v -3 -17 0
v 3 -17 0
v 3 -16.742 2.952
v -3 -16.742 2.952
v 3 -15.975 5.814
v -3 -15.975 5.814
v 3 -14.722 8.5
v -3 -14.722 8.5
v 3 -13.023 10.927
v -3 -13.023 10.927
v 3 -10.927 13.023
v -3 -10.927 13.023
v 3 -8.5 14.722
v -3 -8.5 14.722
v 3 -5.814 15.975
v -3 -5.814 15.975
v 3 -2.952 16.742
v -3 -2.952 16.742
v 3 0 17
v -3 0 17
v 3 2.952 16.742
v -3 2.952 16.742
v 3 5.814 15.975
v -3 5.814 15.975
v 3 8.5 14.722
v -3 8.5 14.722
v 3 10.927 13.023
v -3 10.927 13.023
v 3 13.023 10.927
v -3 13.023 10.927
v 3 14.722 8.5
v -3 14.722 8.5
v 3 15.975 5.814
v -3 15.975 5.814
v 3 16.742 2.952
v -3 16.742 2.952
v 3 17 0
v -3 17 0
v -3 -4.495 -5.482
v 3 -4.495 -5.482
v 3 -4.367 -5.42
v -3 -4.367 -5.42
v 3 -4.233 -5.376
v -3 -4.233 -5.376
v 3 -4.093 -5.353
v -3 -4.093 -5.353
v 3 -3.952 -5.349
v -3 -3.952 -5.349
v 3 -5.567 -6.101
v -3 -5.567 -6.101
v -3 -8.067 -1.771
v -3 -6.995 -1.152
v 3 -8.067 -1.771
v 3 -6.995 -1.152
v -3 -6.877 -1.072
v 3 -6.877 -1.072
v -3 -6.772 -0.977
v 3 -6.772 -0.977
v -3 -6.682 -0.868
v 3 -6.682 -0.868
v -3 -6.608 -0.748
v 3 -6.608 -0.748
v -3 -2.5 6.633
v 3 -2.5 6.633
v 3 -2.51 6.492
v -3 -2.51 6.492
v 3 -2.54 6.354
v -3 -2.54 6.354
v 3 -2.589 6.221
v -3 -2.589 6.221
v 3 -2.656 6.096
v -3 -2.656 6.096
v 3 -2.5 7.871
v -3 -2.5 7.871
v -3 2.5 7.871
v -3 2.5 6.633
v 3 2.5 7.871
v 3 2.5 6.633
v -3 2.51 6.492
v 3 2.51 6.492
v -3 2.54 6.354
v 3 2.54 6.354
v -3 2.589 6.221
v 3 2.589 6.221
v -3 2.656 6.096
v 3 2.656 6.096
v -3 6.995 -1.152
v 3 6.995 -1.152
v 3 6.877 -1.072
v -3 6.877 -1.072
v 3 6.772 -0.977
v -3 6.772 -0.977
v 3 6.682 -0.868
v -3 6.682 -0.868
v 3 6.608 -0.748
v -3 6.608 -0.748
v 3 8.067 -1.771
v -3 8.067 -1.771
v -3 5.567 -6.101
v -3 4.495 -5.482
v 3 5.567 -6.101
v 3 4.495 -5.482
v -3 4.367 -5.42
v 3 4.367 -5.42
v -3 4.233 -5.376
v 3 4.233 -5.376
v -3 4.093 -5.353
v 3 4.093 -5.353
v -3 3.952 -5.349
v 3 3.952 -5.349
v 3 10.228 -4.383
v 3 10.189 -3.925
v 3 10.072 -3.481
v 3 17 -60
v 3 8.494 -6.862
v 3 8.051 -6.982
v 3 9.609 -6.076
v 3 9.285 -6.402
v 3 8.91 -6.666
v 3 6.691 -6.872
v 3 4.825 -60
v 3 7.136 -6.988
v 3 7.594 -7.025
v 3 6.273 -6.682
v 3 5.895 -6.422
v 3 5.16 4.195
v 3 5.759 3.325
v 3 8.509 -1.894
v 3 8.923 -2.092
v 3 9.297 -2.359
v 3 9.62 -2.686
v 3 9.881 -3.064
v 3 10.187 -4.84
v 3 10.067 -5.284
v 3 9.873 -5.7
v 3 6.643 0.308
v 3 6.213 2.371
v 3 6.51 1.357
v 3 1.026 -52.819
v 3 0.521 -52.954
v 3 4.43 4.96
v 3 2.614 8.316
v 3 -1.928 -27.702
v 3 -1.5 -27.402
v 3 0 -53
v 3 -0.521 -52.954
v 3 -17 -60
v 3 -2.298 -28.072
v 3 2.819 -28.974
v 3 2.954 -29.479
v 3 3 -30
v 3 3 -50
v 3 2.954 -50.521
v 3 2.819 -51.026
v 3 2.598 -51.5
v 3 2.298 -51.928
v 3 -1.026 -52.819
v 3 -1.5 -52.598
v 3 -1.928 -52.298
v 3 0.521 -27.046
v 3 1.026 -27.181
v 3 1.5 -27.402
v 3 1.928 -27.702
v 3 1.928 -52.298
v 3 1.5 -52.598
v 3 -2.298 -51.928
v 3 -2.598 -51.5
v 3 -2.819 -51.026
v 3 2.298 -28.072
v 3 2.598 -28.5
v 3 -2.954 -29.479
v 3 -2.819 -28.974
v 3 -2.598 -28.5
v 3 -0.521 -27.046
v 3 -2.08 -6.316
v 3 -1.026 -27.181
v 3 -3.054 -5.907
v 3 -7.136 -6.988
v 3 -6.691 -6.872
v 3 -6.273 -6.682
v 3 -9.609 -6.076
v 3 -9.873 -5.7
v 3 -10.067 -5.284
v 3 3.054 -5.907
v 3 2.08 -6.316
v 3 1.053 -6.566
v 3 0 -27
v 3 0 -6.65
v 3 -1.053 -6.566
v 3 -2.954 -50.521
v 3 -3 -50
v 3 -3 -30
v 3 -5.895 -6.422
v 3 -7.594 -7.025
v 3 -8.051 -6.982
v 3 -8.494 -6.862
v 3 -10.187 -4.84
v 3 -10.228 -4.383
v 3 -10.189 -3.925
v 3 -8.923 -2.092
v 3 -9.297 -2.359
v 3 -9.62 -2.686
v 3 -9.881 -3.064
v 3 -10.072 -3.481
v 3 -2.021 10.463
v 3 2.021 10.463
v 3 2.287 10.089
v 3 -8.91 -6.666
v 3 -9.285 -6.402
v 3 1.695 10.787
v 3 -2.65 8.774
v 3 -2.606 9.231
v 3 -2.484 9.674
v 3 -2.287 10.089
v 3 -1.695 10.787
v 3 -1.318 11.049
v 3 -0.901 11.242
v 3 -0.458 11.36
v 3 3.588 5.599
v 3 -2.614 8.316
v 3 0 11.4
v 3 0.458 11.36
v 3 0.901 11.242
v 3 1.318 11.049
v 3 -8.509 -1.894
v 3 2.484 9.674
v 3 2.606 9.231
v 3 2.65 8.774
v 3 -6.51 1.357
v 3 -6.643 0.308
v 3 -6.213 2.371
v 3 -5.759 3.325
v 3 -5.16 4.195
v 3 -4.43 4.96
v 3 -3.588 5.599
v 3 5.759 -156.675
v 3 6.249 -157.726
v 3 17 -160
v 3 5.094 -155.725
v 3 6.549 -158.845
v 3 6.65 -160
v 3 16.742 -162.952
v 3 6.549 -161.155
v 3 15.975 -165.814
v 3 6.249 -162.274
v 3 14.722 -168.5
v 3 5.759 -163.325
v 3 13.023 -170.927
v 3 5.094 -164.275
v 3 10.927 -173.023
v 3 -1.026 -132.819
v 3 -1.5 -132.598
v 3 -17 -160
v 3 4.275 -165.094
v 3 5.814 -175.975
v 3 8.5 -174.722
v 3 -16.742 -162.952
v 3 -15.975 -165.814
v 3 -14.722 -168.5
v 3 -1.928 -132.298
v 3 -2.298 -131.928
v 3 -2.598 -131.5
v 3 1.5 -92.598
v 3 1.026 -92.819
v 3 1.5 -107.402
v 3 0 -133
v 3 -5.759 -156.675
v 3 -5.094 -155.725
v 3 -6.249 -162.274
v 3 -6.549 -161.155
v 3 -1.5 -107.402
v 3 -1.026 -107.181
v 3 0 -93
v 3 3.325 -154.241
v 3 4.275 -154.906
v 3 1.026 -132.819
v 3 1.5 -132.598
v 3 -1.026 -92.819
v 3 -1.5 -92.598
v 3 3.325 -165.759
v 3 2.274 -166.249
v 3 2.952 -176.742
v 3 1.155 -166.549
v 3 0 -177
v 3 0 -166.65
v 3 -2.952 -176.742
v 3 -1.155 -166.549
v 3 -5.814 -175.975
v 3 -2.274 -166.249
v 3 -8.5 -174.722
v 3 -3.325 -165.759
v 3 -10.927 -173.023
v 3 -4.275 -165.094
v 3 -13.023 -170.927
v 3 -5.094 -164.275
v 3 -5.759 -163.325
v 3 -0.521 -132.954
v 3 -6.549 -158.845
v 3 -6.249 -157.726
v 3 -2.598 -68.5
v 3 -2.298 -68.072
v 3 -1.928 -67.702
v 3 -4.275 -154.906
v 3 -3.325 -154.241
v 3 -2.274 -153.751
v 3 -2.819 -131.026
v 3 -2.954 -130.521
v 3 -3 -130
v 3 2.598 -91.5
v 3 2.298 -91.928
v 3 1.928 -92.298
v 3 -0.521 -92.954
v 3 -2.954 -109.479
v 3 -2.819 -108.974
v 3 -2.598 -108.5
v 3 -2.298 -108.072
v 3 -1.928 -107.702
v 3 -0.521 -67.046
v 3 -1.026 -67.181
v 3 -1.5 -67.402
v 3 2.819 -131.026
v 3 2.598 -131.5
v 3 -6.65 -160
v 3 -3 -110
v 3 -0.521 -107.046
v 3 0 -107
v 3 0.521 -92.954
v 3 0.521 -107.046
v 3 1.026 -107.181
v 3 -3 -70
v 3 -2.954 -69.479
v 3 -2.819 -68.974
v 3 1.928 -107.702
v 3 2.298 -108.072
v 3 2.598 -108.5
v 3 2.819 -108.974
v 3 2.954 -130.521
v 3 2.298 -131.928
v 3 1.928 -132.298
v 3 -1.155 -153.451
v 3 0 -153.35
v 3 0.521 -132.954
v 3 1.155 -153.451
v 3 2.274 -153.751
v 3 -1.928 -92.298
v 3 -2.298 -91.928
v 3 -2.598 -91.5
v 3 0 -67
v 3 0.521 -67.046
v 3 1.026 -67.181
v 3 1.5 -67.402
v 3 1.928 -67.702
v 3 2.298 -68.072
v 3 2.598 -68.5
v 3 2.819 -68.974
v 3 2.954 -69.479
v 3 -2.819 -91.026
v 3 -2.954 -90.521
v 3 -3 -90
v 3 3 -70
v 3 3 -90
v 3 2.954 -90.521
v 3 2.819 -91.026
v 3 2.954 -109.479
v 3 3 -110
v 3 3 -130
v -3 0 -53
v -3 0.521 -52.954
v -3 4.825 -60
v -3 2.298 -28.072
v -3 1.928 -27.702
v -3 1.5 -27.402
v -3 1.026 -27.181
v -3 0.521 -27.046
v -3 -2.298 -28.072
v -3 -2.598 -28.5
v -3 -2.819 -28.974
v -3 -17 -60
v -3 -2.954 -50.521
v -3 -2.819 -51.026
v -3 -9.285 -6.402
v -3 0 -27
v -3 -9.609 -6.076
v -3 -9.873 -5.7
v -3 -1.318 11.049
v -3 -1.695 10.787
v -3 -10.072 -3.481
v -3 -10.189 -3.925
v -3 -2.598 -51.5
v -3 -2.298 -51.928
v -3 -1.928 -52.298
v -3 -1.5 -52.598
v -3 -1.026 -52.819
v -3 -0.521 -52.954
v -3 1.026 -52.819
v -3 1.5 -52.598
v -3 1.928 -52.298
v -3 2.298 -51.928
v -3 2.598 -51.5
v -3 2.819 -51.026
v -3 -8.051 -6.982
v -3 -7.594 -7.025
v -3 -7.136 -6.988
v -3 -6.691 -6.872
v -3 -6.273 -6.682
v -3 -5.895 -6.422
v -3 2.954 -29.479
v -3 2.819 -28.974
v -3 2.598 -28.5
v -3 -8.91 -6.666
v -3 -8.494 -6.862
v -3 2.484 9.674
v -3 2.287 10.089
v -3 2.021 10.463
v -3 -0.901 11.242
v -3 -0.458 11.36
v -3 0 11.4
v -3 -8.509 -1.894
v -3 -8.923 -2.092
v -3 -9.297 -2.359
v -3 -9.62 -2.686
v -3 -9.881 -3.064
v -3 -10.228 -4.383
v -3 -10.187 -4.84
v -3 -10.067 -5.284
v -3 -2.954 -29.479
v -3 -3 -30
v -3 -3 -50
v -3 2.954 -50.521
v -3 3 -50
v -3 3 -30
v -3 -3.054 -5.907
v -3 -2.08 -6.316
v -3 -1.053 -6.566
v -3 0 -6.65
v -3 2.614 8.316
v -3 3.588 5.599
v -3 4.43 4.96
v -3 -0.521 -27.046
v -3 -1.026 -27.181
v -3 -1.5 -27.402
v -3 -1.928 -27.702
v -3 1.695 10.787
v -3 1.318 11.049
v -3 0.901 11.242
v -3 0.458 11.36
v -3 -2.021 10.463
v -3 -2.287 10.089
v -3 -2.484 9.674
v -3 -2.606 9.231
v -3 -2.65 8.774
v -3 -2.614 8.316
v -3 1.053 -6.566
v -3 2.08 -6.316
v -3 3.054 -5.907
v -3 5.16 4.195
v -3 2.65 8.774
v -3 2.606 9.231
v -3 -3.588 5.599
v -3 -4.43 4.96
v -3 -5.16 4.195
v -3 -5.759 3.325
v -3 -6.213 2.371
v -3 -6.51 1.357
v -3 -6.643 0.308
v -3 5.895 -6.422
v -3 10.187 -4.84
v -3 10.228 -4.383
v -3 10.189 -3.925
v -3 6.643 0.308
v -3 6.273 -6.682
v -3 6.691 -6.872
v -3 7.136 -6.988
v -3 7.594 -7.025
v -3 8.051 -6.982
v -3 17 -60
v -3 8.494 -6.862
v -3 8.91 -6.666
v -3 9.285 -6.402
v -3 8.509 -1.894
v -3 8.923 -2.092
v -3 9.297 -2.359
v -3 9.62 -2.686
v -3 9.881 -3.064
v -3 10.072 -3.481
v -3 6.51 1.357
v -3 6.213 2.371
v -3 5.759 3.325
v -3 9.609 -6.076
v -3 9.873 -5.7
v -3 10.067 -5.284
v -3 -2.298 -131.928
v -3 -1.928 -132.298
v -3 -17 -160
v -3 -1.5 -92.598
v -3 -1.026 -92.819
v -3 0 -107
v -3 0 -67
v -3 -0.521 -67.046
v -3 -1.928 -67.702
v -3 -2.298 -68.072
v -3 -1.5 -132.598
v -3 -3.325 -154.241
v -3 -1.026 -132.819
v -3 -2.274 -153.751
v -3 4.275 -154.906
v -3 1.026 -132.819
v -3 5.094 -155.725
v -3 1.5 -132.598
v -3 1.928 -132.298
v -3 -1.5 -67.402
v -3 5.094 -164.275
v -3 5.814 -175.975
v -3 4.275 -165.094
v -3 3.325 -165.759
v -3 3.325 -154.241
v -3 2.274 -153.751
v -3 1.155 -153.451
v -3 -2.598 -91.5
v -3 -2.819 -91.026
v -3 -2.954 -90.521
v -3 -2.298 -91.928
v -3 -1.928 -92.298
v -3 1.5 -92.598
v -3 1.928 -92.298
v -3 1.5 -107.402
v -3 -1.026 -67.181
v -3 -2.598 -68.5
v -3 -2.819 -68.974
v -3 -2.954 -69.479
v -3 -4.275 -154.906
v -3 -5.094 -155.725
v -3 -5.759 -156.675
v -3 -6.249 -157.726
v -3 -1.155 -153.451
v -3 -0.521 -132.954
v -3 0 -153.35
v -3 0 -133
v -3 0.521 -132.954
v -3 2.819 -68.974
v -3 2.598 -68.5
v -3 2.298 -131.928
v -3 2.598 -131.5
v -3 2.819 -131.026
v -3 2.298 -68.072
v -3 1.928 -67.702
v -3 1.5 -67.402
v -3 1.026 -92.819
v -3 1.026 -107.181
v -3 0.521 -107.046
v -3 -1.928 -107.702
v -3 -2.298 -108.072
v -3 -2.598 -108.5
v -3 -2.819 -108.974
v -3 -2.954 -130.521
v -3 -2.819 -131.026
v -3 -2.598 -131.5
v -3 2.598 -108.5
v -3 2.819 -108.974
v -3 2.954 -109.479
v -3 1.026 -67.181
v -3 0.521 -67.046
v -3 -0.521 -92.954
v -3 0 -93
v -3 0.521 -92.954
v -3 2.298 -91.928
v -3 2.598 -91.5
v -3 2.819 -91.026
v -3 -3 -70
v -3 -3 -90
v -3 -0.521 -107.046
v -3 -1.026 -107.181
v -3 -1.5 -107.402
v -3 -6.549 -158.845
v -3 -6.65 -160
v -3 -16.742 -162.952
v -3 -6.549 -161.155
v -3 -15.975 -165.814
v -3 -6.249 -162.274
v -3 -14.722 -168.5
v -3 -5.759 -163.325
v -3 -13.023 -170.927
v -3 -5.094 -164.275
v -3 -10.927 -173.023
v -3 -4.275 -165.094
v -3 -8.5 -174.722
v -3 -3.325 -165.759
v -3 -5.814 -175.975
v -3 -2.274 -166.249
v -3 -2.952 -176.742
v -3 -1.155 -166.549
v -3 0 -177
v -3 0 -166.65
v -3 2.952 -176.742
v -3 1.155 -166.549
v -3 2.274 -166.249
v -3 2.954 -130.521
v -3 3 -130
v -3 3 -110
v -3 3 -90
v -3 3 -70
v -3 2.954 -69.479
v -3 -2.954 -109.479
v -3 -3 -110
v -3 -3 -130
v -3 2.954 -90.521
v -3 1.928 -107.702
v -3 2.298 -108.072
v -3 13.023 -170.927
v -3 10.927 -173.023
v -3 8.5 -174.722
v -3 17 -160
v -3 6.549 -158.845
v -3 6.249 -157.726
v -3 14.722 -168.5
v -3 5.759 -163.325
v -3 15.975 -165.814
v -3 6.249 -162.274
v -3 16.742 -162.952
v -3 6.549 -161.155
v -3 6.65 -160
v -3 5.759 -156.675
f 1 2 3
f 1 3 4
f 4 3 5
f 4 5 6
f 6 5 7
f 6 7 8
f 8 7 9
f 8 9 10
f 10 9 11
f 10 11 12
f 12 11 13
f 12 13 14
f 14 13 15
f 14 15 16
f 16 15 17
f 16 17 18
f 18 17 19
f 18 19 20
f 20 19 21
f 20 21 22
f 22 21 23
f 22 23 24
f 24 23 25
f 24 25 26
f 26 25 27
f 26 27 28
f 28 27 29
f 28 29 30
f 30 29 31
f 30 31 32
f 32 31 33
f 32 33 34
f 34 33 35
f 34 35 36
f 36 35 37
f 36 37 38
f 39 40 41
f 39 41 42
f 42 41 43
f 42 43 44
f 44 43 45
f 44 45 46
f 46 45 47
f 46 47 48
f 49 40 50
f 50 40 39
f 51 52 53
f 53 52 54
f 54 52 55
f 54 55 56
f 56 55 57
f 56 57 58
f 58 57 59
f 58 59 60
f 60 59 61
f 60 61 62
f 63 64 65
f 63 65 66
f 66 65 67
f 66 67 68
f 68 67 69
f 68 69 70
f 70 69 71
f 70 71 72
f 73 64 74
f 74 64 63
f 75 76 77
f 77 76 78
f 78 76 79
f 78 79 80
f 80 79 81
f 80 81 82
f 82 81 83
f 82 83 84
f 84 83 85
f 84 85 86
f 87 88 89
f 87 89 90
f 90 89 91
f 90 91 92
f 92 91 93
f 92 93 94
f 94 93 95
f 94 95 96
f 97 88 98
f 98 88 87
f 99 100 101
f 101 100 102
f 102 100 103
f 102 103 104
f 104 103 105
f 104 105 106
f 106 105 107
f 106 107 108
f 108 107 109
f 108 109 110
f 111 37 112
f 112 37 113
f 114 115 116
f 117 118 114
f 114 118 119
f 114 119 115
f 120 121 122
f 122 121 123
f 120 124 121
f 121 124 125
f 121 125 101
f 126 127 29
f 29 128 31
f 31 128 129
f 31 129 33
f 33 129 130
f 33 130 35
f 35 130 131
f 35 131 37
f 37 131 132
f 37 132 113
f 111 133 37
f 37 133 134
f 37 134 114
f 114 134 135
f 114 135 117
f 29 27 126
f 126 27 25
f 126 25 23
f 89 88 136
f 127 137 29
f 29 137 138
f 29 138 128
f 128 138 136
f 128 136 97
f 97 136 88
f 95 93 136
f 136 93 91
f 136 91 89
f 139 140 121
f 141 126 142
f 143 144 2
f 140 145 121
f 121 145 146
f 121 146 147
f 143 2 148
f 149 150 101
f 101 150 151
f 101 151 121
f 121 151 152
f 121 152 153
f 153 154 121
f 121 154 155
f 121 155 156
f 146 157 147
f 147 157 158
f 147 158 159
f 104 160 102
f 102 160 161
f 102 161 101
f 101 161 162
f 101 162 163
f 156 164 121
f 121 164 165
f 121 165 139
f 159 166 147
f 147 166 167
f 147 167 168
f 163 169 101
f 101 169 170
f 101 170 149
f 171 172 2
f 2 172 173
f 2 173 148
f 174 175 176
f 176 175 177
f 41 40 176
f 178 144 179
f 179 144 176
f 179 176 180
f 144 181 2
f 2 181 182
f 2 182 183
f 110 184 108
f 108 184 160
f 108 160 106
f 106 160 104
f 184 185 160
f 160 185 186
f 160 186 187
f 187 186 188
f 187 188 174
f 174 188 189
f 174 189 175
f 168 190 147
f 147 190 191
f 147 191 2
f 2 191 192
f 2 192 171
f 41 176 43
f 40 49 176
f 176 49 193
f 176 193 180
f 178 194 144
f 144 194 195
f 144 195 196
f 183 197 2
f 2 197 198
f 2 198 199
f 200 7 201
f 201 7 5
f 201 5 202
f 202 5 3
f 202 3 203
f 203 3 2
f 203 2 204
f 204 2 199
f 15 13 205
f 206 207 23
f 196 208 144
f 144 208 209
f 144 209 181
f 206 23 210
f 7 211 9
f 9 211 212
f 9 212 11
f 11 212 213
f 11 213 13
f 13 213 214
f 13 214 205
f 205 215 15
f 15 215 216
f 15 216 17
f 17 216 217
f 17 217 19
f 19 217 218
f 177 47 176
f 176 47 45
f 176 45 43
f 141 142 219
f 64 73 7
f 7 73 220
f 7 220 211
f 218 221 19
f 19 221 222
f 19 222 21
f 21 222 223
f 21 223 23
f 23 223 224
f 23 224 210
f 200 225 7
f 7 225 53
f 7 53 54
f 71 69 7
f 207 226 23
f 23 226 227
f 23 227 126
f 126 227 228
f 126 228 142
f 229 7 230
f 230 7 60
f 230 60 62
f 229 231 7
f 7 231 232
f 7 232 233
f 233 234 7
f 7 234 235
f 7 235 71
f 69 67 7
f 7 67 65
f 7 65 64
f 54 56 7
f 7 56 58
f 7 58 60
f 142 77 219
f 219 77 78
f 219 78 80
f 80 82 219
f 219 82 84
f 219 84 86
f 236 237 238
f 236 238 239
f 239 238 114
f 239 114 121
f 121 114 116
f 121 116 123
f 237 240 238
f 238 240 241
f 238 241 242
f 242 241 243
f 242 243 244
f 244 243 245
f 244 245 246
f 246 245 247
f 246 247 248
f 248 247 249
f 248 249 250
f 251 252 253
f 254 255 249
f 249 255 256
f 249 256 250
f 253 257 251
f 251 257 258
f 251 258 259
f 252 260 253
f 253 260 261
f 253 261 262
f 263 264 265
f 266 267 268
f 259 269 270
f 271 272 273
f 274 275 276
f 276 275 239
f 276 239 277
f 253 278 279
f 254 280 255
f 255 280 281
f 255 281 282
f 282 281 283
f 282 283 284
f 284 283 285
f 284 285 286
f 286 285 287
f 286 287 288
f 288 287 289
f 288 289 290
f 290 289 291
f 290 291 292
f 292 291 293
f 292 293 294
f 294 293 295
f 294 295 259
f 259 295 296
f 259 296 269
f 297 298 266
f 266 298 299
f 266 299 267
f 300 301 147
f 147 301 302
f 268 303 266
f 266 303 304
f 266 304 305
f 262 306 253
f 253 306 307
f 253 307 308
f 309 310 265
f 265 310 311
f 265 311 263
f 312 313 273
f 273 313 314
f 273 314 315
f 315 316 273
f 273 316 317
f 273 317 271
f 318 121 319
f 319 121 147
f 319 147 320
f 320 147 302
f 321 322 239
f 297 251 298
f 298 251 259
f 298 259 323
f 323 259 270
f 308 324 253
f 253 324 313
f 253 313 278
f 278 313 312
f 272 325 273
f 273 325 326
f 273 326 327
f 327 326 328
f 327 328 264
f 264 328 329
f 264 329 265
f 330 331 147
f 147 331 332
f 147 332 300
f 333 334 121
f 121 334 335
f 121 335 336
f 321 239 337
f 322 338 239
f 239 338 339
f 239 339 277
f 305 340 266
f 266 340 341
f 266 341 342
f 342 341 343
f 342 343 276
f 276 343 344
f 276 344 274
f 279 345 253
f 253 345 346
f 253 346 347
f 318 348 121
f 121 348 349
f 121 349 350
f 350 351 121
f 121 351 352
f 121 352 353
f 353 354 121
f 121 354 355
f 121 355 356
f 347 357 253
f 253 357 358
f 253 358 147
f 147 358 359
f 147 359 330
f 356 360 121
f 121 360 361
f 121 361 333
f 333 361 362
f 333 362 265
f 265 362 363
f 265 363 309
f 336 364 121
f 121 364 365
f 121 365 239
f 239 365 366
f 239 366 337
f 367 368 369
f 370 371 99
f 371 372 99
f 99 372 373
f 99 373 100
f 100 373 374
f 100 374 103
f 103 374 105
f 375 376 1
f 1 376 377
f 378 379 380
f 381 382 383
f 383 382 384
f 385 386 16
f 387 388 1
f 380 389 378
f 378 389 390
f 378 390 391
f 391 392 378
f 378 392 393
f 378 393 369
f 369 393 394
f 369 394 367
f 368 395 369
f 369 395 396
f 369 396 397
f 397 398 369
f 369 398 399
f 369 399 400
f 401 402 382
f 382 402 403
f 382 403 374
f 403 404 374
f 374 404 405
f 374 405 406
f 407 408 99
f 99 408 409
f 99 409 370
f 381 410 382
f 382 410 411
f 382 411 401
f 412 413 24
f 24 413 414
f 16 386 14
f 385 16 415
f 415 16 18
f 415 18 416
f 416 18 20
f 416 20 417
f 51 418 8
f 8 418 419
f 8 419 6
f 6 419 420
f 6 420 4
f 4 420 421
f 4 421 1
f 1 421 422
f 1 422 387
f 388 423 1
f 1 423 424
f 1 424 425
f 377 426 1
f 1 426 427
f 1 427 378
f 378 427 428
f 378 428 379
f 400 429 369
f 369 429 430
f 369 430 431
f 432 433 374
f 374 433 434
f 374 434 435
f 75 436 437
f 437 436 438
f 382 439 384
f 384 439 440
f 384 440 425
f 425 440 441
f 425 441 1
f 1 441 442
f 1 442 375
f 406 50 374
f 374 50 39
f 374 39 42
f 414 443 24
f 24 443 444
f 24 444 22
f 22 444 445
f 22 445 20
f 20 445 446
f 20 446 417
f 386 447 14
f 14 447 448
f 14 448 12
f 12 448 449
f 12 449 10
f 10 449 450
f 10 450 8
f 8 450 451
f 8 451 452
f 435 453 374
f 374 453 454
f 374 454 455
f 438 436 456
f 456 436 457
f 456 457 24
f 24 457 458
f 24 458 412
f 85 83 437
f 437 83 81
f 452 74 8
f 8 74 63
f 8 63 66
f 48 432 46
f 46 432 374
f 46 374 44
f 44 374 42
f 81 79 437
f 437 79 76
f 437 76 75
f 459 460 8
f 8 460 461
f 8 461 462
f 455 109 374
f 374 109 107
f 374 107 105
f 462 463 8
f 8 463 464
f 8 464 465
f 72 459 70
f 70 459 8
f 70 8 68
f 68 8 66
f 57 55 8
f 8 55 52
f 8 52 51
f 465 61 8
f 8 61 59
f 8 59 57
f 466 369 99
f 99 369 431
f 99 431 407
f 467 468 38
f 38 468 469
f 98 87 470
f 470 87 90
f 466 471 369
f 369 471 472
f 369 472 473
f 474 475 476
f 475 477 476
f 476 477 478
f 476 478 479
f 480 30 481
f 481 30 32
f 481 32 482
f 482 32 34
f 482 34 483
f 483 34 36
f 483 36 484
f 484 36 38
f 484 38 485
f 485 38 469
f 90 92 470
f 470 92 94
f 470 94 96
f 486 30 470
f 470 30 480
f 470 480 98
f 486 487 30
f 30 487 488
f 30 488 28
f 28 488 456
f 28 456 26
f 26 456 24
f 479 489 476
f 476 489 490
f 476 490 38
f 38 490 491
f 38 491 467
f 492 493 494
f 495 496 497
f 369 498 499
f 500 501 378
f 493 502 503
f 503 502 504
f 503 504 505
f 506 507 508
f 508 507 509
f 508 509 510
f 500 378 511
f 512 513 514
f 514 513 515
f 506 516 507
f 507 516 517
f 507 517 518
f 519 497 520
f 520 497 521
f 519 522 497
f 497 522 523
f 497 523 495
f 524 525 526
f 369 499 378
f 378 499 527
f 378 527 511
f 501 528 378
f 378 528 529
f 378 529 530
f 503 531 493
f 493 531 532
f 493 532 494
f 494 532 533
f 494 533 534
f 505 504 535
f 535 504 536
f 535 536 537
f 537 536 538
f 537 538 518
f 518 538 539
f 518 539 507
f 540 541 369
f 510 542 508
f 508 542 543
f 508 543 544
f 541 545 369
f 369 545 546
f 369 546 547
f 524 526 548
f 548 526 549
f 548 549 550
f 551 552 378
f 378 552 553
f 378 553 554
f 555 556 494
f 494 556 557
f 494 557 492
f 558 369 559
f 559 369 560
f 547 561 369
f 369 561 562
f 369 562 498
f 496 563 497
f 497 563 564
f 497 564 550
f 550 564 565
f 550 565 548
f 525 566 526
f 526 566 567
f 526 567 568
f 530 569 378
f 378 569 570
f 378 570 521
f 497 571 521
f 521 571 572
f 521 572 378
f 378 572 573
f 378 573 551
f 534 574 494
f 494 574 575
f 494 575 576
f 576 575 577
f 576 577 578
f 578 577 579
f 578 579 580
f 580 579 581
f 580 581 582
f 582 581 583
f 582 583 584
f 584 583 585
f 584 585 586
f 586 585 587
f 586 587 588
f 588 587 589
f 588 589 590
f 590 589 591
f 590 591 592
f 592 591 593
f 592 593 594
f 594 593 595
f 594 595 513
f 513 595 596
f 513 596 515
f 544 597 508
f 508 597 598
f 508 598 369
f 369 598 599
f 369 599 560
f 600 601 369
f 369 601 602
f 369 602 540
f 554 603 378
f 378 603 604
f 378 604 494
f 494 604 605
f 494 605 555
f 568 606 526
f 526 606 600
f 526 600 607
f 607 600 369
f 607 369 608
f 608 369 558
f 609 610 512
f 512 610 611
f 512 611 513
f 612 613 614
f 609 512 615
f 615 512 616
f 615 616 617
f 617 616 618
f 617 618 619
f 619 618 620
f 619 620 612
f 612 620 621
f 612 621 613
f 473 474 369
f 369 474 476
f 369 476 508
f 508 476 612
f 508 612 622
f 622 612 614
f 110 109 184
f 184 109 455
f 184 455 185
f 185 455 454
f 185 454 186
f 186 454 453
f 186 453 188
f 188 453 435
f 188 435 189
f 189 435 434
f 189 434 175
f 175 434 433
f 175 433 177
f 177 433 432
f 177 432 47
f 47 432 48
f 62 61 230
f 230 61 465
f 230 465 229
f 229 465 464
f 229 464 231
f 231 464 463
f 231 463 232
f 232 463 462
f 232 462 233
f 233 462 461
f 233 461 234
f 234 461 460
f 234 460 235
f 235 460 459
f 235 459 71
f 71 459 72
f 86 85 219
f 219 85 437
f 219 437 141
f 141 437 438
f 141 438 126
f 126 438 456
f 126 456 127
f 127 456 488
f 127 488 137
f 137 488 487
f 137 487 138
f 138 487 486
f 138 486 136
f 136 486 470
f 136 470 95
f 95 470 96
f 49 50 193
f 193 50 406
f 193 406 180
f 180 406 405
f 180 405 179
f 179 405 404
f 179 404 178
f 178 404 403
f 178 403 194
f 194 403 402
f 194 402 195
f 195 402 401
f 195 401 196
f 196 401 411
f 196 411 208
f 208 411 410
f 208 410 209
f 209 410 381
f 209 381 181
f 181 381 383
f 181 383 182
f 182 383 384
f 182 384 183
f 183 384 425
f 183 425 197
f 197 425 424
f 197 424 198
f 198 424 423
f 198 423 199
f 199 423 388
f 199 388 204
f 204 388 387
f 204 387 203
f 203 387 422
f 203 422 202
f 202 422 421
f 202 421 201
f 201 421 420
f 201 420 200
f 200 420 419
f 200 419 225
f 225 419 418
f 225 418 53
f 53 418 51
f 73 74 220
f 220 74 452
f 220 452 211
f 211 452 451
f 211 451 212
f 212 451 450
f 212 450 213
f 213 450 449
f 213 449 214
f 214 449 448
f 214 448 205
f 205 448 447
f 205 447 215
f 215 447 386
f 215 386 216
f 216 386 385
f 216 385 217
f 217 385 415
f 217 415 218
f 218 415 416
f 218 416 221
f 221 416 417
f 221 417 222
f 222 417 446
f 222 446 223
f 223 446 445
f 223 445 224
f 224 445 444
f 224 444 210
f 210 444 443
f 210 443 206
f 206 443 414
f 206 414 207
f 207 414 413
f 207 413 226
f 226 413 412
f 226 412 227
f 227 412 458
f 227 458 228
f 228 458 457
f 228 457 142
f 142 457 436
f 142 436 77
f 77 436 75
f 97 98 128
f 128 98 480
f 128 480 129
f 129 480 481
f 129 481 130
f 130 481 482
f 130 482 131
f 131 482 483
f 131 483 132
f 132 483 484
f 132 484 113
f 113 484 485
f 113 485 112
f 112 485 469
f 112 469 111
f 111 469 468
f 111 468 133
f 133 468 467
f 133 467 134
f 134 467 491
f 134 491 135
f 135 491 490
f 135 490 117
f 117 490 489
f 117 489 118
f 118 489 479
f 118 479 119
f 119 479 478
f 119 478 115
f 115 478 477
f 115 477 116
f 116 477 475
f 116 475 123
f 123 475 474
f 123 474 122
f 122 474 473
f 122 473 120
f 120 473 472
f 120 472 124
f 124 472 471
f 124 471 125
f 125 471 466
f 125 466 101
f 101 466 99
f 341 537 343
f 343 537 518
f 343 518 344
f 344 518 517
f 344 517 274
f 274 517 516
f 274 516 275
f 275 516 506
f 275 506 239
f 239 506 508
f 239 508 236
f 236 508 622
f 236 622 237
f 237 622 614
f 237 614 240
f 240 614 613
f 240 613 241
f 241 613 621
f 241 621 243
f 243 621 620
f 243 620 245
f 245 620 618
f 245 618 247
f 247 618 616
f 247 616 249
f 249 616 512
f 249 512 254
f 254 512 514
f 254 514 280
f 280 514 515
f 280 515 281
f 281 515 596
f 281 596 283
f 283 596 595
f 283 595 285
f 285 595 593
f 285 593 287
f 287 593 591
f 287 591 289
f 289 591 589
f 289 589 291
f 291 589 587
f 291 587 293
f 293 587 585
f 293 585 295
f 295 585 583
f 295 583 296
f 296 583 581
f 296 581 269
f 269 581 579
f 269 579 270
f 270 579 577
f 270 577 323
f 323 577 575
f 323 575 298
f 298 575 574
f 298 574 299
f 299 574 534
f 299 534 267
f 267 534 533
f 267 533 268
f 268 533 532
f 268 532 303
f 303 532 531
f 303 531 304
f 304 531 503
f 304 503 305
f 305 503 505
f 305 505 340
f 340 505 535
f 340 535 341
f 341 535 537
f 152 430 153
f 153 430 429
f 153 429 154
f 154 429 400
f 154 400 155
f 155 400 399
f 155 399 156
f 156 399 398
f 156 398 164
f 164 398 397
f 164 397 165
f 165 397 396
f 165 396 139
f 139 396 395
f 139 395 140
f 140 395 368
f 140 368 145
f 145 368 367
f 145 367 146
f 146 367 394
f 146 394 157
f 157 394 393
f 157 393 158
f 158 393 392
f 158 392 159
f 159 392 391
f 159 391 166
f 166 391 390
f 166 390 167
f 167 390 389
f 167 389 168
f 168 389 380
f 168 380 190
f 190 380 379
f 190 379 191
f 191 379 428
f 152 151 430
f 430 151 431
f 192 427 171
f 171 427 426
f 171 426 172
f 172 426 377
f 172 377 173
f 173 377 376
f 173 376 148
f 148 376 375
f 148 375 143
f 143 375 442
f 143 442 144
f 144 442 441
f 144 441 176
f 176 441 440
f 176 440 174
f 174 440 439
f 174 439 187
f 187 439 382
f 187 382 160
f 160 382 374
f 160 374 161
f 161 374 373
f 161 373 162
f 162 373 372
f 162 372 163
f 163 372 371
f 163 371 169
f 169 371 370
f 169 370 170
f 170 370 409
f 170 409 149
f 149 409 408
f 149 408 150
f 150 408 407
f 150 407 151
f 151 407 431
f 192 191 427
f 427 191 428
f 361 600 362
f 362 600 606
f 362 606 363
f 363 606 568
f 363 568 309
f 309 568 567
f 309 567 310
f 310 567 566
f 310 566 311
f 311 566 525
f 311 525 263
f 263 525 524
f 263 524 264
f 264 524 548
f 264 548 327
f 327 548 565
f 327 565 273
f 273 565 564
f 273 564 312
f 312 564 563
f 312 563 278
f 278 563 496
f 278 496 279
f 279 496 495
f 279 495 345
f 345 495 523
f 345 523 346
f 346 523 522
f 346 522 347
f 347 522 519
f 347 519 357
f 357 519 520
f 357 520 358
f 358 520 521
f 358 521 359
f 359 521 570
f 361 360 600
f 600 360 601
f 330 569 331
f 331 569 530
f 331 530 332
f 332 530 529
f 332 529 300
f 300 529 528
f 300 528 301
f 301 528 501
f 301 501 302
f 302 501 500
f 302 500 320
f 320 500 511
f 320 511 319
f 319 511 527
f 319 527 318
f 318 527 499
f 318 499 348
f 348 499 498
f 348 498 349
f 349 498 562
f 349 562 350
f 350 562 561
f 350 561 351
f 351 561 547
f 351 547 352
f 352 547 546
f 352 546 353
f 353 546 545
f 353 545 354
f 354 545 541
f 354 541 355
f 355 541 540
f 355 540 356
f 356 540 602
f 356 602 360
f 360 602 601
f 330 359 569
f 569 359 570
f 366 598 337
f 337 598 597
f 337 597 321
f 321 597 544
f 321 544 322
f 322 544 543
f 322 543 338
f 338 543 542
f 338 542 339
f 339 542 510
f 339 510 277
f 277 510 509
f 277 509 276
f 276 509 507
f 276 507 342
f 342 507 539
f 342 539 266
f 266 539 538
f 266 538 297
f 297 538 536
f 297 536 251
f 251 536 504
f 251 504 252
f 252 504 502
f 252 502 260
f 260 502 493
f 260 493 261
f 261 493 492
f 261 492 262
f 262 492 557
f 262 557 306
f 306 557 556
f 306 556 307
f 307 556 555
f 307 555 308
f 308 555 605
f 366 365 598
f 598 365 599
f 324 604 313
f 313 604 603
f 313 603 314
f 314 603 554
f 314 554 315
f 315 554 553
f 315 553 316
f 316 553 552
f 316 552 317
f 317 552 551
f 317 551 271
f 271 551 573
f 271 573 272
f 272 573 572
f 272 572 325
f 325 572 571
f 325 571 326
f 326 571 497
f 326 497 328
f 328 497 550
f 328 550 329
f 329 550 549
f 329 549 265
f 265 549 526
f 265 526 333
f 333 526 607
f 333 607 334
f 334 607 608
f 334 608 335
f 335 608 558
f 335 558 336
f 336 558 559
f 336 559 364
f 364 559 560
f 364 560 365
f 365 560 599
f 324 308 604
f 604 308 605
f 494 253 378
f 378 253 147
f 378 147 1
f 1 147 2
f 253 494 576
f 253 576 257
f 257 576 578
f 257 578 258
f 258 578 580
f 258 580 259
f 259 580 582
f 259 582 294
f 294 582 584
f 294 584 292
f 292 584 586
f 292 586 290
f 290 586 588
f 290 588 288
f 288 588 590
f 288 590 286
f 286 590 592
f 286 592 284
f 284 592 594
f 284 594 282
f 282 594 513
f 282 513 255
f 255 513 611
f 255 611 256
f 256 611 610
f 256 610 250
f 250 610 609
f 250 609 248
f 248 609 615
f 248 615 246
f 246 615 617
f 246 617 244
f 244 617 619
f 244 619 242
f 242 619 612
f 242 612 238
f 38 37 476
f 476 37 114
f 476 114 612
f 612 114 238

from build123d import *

# Parameters (mm, degrees)
CUT_EXTRUDE_START       = -6
CUT_EXTRUDE_4_OUTLINE_R = 6.5
CUT_EXTRUDE_4_DEPTH     = 6
SKETCH_1_6_R            = 6.65
CUT_EXTRUDE_5_DEPTH     = 10
SKETCH_1_7_W            = 120.462330866
SKETCH_1_7_H            = 12.505444566
EXTRUDE_1_DEPTH         = 6
CUT_EXTRUDE_6_DEPTH     = 6
EXTRUDE_START           = -6
SKETCH_3_R              = 6.65
EXTRUDE_3_DEPTH         = 6


with BuildPart() as part:
    # 切除-拉伸4: read off the stored shape, not the designer's step
    # 切除-拉伸4 outline → 切除-拉伸4 (new body)
    with BuildSketch(Plane.ZY.offset(3).offset(CUT_EXTRUDE_START)):
        with BuildLine():
            Line((-160, -12), (-16.278820596, -12))
            ThreePointArc((-16.278820596, -12), (-12.755499279, -12.528896875), (-9.542756901, -14.068965517))
            ThreePointArc((-9.542756901, -14.068965517), (17, 0), (-9.542756901, 14.068965517))
            ThreePointArc((-9.542756901, 14.068965517), (-12.755499279, 12.528896875), (-16.278820596, 12))
            Line((-16.278820596, 12), (-160, 12))
            ThreePointArc((-160, 12), (-172, 0), (-160, -12))
        make_face()
        with Locations((-160, 0)):
            Circle(CUT_EXTRUDE_4_OUTLINE_R, mode=Mode.SUBTRACT)
        with BuildLine():
            Line((-120, -3), (-134, -3))
            ThreePointArc((-134, -3), (-137, 0), (-134, 3))
            Line((-134, 3), (-120, 3))
            ThreePointArc((-120, 3), (-117, 0), (-120, -3))
        make_face(mode=Mode.SUBTRACT)
        with BuildLine():
            Line((-90, -3), (-104, -3))
            ThreePointArc((-104, -3), (-107, 0), (-104, 3))
            Line((-104, 3), (-90, 3))
            ThreePointArc((-90, 3), (-87, 0), (-90, -3))
        make_face(mode=Mode.SUBTRACT)
        with BuildLine():
            Line((-60, -3), (-74, -3))
            ThreePointArc((-74, -3), (-77, 0), (-74, 3))
            Line((-74, 3), (-60, 3))
            ThreePointArc((-60, 3), (-57, 0), (-60, -3))
        make_face(mode=Mode.SUBTRACT)
        with BuildLine():
            Line((-30, -3), (-44, -3))
            ThreePointArc((-44, -3), (-47, 0), (-44, 3))
            Line((-44, 3), (-30, 3))
            ThreePointArc((-30, 3), (-27, 0), (-30, -3))
        make_face(mode=Mode.SUBTRACT)
        with BuildLine():
            ThreePointArc((-5.4816883, -4.494562647), (-5.376440838, -4.232531174), (-5.348640266, -3.951524681))
            ThreePointArc((-5.348640266, -3.951524681), (-6.65, 0), (-5.348640266, 3.951524681))
            ThreePointArc((-5.348640266, 3.951524681), (-5.376440838, 4.232531174), (-5.4816883, 4.494562647))
            Line((-5.4816883, 4.494562647), (-6.100603614, 5.566555416))
            ThreePointArc((-6.100603614, 5.566555416), (-5.7, 9.872689603), (-1.770476595, 8.066555416))
            Line((-1.770476595, 8.066555416), (-1.151561281, 6.994562647))
            ThreePointArc((-1.151561281, 6.994562647), (-0.9772591, 6.772399934), (-0.747800624, 6.607820687))
            ThreePointArc((-0.747800624, 6.607820687), (3.325, 5.759068935), (6.09644089, 2.656296006))
            ThreePointArc((6.09644089, 2.656296006), (6.353699938, 2.53986876), (6.633249581, 2.5))
            Line((6.633249581, 2.5), (7.871080208, 2.5))
            ThreePointArc((7.871080208, 2.5), (11.4, 0), (7.871080208, -2.5))
            Line((7.871080208, -2.5), (6.633249581, -2.5))
            ThreePointArc((6.633249581, -2.5), (6.353699938, -2.53986876), (6.09644089, -2.656296006))
            ThreePointArc((6.09644089, -2.656296006), (3.325, -5.759068935), (-0.747800624, -6.607820687))
            ThreePointArc((-0.747800624, -6.607820687), (-0.9772591, -6.772399934), (-1.151561281, -6.994562647))
            Line((-1.151561281, -6.994562647), (-1.770476595, -8.066555416))
            ThreePointArc((-1.770476595, -8.066555416), (-5.7, -9.872689603), (-6.100603614, -5.566555416))
            Line((-6.100603614, -5.566555416), (-5.4816883, -4.494562647))
        make_face(mode=Mode.SUBTRACT)
    extrude(amount=CUT_EXTRUDE_4_DEPTH)

    # 草图1<6> → 切除-拉伸5 (cut)
    with BuildSketch(Plane.ZY.offset(3)):
        with Locations((-160, 0)):
            Circle(SKETCH_1_6_R)
    extrude(amount=-CUT_EXTRUDE_5_DEPTH, mode=Mode.SUBTRACT)

    # 草图1<7> → 凸台-拉伸1 (add)
    with BuildSketch(Plane.ZY.offset(3)):
        with Locations((-81.625615337, 0)):
            Rectangle(SKETCH_1_7_W, SKETCH_1_7_H)
    extrude(amount=-EXTRUDE_1_DEPTH)

    # 草图2 → 切除-拉伸6 (cut)
    with BuildSketch(Plane.ZY.offset(3)):
        with BuildLine():
            Line((-130, 3), (-110, 3))
            ThreePointArc((-110, 3), (-107, 0), (-110, -3))
            Line((-110, -3), (-130, -3))
            ThreePointArc((-130, -3), (-133, 0), (-130, 3))
        make_face()
        with BuildLine():
            Line((-90, 3), (-70, 3))
            ThreePointArc((-70, 3), (-67, 0), (-70, -3))
            Line((-70, -3), (-90, -3))
            ThreePointArc((-90, -3), (-93, 0), (-90, 3))
        make_face()
        with BuildLine():
            Line((-50, 3), (-30, 3))
            ThreePointArc((-30, 3), (-27, 0), (-30, -3))
            Line((-30, -3), (-50, -3))
            ThreePointArc((-50, -3), (-53, 0), (-50, 3))
        make_face()
    extrude(amount=-CUT_EXTRUDE_6_DEPTH, mode=Mode.SUBTRACT)

    # 草图3 → 凸台-拉伸3 (add)
    # profile 1 of 6: a face of its own
    with BuildSketch(Plane.ZY.offset(3).offset(EXTRUDE_START)):
        with BuildLine():
            Line((0, 17), (-160, 17))
            ThreePointArc((-160, 17), (-153.480797595, 15.700318468), (-147.958405421, 12))
            Line((-147.958405421, 12), (-16.278820596, 12))
            ThreePointArc((-16.278820596, 12), (-12.755499279, 12.528896875), (-9.542756901, 14.068965517))
            ThreePointArc((-9.542756901, 14.068965517), (-4.991371866, 16.250729427), (0, 17))
        make_face()
    # profile 2 of 6: a face of its own
    with BuildSketch(Plane.ZY.offset(3).offset(EXTRUDE_START)):
        with BuildLine():
            Line((-16.278820596, 12), (-147.958405421, 12))
            ThreePointArc((-147.958405421, 12), (-146.052319534, 9.719167126), (-144.57264474, 7.141198057))
            Line((-144.57264474, 7.141198057), (-15.42735526, 7.141198057))
            ThreePointArc((-15.42735526, 7.141198057), (-12.95666299, 11.005675089), (-9.542756901, 14.068965517))
            ThreePointArc((-9.542756901, 14.068965517), (-12.755499279, 12.528896875), (-16.278820596, 12))
        make_face()
    # profile 3 of 6: a face of its own
    with BuildSketch(Plane.ZY.offset(3).offset(EXTRUDE_START)):
        with BuildLine():
            ThreePointArc((-143.664552767, -4.706714744), (-145.350353999, -8.624840407), (-147.958405421, -12))
            Line((-147.958405421, -12), (-16.278820596, -12))
            ThreePointArc((-16.278820596, -12), (-12.755499279, -12.528896875), (-9.542756901, -14.068965517))
            ThreePointArc((-9.542756901, -14.068965517), (-13.759843647, -9.983321231), (-16.335447233, -4.706714744))
            Line((-16.335447233, -4.706714744), (-143.664552767, -4.706714744))
        make_face()
    # profile 4 of 6: a face of its own
    with BuildSketch(Plane.ZY.offset(3).offset(EXTRUDE_START)):
        with BuildLine():
            ThreePointArc((-147.958405421, -12), (-153.480797595, -15.700318468), (-160, -17))
            Line((-160, -17), (0, -17))
            ThreePointArc((0, -17), (-4.991371866, -16.250729427), (-9.542756901, -14.068965517))
            ThreePointArc((-9.542756901, -14.068965517), (-12.755499279, -12.528896875), (-16.278820596, -12))
            Line((-16.278820596, -12), (-147.958405421, -12))
        make_face()
    # profile 5 of 6: a face of its own
    with BuildSketch(Plane.ZY.offset(3).offset(EXTRUDE_START)):
        with BuildLine():
            ThreePointArc((-144.57264474, 7.141198057), (-146.052319534, 9.719167126), (-147.958405421, 12))
            Line((-147.958405421, 12), (-160, 12))
            ThreePointArc((-160, 12), (-172, 0), (-160, -12))
            Line((-160, -12), (-147.958405421, -12))
            ThreePointArc((-147.958405421, -12), (-145.350353999, -8.624840407), (-143.664552767, -4.706714744))
            ThreePointArc((-143.664552767, -4.706714744), (-143.166958044, -2.37669908), (-143, 0))
            ThreePointArc((-143, 0), (-143.397815815, 3.656156492), (-144.57264474, 7.141198057))
        make_face()
        with Locations((-160, 0)):
            Circle(SKETCH_3_R, mode=Mode.SUBTRACT)
    # profile 6 of 6: a face of its own
    with BuildSketch(Plane.ZY.offset(3).offset(EXTRUDE_START)):
        with BuildLine():
            ThreePointArc((-147.958405421, 12), (-153.480797595, 15.700318468), (-160, 17))
            ThreePointArc((-160, 17), (-177, 0), (-160, -17))
            ThreePointArc((-160, -17), (-153.480797595, -15.700318468), (-147.958405421, -12))
            Line((-147.958405421, -12), (-160, -12))
            ThreePointArc((-160, -12), (-172, 0), (-160, 12))
            Line((-160, 12), (-147.958405421, 12))
        make_face()
    extrude(amount=EXTRUDE_3_DEPTH)


solid = part.part
